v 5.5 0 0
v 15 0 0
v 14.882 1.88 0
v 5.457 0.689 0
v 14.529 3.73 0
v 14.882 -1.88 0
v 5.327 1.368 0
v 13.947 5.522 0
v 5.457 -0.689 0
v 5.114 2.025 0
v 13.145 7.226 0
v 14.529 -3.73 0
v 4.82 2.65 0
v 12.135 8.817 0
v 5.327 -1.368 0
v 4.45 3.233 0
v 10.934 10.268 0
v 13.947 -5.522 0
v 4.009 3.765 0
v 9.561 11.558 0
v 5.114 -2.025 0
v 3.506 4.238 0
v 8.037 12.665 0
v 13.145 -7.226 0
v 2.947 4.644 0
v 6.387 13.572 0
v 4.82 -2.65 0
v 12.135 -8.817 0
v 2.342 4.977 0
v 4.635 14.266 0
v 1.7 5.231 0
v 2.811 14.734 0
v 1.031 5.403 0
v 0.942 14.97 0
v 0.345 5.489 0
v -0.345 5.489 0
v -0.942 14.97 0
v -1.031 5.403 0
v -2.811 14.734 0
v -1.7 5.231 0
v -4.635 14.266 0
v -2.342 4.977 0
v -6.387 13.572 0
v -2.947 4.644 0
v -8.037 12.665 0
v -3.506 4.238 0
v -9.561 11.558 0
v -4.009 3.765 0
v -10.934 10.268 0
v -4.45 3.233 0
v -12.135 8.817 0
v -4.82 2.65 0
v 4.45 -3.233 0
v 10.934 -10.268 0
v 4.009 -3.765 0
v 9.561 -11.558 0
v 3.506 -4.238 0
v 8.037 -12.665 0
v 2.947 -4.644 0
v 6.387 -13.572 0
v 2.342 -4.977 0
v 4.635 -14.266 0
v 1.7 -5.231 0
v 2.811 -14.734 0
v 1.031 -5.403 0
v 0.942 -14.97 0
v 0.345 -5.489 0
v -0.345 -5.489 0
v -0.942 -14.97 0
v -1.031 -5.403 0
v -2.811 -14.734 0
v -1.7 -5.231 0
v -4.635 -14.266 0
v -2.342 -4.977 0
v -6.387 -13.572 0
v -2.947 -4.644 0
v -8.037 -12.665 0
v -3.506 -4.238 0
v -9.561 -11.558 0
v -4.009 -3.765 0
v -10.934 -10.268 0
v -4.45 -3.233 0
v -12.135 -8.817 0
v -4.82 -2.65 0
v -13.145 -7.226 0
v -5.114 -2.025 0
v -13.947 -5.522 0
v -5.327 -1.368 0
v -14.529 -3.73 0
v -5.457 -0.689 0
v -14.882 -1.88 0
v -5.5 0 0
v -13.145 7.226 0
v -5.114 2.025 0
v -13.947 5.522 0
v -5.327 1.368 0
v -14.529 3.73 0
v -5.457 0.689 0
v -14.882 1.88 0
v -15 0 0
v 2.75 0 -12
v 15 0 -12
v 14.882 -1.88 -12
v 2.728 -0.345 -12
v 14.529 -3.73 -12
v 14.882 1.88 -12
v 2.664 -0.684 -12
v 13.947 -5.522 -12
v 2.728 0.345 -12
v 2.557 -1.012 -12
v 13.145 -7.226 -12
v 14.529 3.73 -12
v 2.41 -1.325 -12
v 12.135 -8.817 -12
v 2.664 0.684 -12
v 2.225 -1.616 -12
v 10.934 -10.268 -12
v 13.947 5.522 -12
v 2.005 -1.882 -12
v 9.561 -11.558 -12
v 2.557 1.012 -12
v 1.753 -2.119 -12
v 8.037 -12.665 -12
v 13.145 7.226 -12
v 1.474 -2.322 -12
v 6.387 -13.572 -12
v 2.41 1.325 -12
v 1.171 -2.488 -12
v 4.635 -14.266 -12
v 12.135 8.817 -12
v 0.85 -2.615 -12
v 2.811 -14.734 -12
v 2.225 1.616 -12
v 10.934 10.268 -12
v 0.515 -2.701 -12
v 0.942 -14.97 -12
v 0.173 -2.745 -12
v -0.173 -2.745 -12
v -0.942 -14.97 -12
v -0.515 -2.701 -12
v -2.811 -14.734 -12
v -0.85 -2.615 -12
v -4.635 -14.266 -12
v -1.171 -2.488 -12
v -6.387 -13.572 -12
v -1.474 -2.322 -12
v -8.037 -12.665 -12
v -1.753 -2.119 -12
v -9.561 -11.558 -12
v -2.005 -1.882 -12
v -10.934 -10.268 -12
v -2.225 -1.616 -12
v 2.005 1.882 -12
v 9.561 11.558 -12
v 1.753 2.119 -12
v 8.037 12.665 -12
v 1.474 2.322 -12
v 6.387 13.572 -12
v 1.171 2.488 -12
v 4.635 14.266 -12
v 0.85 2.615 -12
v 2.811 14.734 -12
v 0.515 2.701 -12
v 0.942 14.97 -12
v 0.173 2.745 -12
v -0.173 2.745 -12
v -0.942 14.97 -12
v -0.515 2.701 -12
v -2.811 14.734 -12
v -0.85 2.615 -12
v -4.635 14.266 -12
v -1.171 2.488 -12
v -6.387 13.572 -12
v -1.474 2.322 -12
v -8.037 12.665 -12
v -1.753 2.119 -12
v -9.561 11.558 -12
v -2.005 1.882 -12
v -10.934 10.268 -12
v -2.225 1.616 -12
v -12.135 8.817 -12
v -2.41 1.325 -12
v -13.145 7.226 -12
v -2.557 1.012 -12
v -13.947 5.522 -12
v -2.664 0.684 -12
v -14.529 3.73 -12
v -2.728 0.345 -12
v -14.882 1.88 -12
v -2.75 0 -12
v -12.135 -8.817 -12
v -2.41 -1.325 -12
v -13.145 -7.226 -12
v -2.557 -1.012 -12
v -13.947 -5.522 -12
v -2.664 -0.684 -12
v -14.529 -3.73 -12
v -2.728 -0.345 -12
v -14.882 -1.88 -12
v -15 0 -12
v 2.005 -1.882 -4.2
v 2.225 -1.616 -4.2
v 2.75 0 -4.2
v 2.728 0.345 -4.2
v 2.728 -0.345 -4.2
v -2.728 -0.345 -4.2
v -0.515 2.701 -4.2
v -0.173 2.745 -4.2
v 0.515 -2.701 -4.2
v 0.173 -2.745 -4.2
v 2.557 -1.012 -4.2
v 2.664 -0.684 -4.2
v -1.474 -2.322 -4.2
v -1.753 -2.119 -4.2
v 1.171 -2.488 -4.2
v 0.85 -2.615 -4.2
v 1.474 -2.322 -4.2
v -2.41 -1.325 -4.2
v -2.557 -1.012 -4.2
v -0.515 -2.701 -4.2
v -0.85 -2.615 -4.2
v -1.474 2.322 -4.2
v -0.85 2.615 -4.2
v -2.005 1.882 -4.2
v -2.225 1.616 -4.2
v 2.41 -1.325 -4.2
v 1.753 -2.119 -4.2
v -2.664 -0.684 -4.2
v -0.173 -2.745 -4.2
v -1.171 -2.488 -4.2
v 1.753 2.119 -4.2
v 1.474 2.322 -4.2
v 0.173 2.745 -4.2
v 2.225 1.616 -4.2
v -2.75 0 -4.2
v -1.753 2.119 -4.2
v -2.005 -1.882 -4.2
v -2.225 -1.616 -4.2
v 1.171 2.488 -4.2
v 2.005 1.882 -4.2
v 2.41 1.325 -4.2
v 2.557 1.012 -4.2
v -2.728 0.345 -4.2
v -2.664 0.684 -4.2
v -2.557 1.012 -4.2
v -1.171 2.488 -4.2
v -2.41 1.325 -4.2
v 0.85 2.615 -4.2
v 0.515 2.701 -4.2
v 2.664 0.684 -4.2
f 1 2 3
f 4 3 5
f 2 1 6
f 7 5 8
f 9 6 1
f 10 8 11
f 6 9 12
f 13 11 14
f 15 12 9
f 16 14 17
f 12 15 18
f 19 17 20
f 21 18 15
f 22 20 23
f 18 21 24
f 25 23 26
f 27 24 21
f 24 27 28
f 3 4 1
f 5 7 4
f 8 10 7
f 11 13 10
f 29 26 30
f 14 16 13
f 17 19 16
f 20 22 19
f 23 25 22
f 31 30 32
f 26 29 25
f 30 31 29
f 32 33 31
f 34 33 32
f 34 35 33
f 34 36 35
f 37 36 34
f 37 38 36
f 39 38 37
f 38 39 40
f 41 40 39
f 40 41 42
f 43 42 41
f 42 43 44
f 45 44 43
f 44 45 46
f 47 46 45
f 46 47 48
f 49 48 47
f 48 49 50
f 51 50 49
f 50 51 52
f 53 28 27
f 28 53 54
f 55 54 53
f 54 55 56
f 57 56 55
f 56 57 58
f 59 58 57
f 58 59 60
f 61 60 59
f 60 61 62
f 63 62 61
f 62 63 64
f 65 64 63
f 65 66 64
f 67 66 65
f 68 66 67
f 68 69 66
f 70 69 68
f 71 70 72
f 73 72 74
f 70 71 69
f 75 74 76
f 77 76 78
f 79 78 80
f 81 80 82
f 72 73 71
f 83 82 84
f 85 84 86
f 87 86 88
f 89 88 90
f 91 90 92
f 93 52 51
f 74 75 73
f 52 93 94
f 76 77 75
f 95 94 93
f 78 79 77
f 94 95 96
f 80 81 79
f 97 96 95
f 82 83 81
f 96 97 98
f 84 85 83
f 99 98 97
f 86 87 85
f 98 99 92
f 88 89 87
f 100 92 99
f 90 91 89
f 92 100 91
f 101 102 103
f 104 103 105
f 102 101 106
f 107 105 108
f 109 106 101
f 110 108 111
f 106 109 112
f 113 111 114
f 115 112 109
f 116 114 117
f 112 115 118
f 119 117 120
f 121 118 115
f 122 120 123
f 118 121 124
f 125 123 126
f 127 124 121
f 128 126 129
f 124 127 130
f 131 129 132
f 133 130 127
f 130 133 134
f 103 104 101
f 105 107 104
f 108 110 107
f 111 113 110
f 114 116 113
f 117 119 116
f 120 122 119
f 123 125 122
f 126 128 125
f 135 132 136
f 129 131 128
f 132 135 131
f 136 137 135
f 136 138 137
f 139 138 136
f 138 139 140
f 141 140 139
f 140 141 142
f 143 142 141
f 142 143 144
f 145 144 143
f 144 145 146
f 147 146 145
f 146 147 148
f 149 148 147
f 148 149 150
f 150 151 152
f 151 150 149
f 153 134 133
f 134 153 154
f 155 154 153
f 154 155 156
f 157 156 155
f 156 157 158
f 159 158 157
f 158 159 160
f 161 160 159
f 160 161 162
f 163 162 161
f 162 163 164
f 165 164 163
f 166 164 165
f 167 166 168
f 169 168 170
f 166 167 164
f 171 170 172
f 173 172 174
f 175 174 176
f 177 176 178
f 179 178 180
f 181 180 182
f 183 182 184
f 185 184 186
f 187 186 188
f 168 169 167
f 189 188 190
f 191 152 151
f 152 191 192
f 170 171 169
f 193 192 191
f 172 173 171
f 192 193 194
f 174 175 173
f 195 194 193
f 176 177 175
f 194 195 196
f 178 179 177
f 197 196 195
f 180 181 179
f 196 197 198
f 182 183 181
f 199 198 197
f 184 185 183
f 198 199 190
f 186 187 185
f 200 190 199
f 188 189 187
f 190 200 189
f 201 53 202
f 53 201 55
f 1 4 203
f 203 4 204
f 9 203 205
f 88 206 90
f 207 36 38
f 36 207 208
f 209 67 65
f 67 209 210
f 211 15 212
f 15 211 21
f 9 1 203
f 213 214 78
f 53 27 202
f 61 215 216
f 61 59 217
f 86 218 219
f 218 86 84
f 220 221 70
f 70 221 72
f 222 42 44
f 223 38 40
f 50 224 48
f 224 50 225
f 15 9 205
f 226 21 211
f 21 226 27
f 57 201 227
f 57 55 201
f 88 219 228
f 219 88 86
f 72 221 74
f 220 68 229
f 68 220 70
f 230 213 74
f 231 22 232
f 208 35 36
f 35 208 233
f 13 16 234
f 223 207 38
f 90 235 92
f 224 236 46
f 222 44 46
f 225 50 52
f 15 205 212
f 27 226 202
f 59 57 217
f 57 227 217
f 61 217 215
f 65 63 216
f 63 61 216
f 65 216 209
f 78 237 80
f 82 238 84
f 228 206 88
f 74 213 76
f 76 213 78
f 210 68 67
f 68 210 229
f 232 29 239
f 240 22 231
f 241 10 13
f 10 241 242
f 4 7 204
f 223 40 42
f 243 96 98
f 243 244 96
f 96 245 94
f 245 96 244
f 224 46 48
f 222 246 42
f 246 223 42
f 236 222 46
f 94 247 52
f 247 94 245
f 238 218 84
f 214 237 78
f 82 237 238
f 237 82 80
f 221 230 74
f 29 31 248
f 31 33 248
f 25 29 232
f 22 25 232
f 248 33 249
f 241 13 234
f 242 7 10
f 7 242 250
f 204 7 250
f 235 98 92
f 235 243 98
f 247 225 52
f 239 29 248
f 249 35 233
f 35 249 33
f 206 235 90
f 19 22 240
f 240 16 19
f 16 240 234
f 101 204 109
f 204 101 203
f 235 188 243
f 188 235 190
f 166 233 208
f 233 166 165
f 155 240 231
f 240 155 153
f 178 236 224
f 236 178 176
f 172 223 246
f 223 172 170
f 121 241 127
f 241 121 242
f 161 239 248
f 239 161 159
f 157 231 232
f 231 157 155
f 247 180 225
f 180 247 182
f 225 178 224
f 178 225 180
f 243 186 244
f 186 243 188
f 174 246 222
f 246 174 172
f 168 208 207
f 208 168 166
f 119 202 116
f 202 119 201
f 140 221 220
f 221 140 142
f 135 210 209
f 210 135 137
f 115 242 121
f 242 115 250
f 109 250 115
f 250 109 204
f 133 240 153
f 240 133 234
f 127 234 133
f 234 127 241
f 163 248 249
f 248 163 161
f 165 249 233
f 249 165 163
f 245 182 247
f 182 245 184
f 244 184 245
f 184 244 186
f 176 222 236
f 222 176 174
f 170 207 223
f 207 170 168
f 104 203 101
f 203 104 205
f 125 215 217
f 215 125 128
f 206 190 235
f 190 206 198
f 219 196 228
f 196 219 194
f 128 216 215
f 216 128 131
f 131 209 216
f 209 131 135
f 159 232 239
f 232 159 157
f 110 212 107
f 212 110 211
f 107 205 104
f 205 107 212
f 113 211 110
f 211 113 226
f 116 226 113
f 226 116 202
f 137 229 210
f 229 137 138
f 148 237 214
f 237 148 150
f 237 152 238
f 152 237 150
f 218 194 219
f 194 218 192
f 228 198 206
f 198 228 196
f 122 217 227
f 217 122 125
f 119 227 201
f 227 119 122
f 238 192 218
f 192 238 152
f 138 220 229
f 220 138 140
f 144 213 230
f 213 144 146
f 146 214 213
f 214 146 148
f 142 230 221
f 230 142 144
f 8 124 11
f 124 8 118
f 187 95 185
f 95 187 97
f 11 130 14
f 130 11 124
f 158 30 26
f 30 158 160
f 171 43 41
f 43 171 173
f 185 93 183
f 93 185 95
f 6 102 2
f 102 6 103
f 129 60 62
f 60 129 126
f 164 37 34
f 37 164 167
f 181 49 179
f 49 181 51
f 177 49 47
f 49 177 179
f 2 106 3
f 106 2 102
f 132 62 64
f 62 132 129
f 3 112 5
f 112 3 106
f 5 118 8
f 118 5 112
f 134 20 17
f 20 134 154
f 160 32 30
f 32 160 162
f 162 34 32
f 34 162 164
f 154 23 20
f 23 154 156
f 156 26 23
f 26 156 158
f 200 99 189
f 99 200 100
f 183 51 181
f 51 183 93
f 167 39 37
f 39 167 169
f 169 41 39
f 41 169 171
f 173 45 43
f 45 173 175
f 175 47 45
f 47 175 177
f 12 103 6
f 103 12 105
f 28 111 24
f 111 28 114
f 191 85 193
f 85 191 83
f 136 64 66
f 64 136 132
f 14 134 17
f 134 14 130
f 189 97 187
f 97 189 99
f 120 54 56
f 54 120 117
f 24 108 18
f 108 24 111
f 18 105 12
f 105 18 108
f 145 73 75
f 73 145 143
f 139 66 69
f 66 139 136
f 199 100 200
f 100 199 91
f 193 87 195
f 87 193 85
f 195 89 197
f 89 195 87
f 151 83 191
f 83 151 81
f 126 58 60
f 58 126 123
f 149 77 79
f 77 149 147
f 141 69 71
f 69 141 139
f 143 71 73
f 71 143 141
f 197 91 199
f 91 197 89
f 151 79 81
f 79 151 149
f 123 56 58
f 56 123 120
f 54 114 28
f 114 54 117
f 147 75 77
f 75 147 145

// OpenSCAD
$fn = 50;


difference() {
	union() {
		translate(v = [0, 0, -12.0000000000]) {
			cylinder(h = 12, r = 15.0000000000);
		}
	}
	union() {
		translate(v = [0, 0, 0]) {
			rotate(a = [0, 0, 0]) {
				difference() {
					union() {
						translate(v = [0, 0, -12.0000000000]) {
							cylinder(h = 12, r = 2.2500000000);
						}
						translate(v = [0, 0, -4.2000000000]) {
							cylinder(h = 4.2000000000, r1 = 2.7500000000, r2 = 5.5000000000);
						}
						translate(v = [0, 0, -12.0000000000]) {
							cylinder(h = 12, r = 2.7500000000);
						}
						translate(v = [0, 0, -12.0000000000]) {
							cylinder(h = 12, r = 2.2500000000);
						}
					}
					union();
				}
			}
		}
	}
}
